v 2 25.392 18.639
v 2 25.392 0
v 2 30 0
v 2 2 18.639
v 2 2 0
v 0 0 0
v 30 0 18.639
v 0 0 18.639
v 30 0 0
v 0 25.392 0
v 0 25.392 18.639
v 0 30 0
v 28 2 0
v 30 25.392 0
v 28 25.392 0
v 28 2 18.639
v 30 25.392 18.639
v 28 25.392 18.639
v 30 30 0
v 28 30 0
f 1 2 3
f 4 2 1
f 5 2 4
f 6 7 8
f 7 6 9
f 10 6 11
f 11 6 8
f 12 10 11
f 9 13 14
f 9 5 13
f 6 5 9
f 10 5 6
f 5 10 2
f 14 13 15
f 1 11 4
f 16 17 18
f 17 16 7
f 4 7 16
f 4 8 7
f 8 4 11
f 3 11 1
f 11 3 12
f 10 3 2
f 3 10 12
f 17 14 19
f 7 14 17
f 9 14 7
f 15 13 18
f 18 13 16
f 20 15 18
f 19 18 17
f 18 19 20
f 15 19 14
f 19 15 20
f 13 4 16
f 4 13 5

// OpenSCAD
// file: common.scad
// all measurements are mm

// measured from front flange to rear flange
kb_d = 125;

// desired height of the back flange
back_h = 30;

flange_d = 15.2; // really 15, but leave some clearance

// hole center is about 6mm  offset from outer edge of flange
screw_hole_offset = 7;

// dimensions for m3 nut pocket
m3_hex_nut_d = 6.15; // measured the long way
m3_hex_nut_h = 2.15;
m3_hex_nut_hole_tolerance = 0.4;

// m3 screw hole diameter
m3_screw_hole_d = 3.2;

// bracket dimensions
bracket_w = 30;
bracket_base_thickness = m3_hex_nut_h + 0.2 + 2;
bracket_wall_thickness = 2;
bracket_d = flange_d + 2*bracket_wall_thickness; // depth of bracket base

// angle by which keyboard is inclined
kb_incline_angle = 13.8865;

leg_back_extra_h = ((3*bracket_d) / 12.5);
leg_front_height = 30 - leg_back_extra_h;
leg_d = sqrt(bracket_d*bracket_d - leg_back_extra_h*leg_back_extra_h);
// main file
// Leg assembly model for C16 keyboard support

include <common.scad>;

module wedge() {
    translate([bracket_wall_thickness, 0, 0]) {
        rotate([0, -90, 0]) {
            linear_extrude(bracket_wall_thickness) {
                polygon(points=[[0,0], [0, leg_d], [leg_back_extra_h, leg_d]]);
            }
        }
    }
}

module leg() {
    cube([bracket_wall_thickness, leg_d, leg_front_height]);
    translate([0, 0, leg_front_height]) {
        wedge();
    }
}

// printing the entire assembly at once doesn't work, so print
// the bracket and leg assembly separately
/*
module assembly() {
    translate([0, 0, leg_front_height]) {
        rotate([kb_incline_angle, 0, 0]) {
            bracket();
        }
    }

    leg();
    
    translate([bracket_w-bracket_wall_thickness, 0, 0]) {
        leg();
    }
    
    cube([bracket_w, leg_d, bracket_wall_thickness]);
}
*/

module leg_assembly() {
    leg();
    
    translate([bracket_w-bracket_wall_thickness, 0, 0]) {
        leg();
    }
    
    cube([bracket_w, leg_d, bracket_wall_thickness]);
}


// uncomment this to print a leg assembly
translate([0, 0, leg_d]) {
    rotate([-90, 0, 0]) {
        leg_assembly();
    }
}
